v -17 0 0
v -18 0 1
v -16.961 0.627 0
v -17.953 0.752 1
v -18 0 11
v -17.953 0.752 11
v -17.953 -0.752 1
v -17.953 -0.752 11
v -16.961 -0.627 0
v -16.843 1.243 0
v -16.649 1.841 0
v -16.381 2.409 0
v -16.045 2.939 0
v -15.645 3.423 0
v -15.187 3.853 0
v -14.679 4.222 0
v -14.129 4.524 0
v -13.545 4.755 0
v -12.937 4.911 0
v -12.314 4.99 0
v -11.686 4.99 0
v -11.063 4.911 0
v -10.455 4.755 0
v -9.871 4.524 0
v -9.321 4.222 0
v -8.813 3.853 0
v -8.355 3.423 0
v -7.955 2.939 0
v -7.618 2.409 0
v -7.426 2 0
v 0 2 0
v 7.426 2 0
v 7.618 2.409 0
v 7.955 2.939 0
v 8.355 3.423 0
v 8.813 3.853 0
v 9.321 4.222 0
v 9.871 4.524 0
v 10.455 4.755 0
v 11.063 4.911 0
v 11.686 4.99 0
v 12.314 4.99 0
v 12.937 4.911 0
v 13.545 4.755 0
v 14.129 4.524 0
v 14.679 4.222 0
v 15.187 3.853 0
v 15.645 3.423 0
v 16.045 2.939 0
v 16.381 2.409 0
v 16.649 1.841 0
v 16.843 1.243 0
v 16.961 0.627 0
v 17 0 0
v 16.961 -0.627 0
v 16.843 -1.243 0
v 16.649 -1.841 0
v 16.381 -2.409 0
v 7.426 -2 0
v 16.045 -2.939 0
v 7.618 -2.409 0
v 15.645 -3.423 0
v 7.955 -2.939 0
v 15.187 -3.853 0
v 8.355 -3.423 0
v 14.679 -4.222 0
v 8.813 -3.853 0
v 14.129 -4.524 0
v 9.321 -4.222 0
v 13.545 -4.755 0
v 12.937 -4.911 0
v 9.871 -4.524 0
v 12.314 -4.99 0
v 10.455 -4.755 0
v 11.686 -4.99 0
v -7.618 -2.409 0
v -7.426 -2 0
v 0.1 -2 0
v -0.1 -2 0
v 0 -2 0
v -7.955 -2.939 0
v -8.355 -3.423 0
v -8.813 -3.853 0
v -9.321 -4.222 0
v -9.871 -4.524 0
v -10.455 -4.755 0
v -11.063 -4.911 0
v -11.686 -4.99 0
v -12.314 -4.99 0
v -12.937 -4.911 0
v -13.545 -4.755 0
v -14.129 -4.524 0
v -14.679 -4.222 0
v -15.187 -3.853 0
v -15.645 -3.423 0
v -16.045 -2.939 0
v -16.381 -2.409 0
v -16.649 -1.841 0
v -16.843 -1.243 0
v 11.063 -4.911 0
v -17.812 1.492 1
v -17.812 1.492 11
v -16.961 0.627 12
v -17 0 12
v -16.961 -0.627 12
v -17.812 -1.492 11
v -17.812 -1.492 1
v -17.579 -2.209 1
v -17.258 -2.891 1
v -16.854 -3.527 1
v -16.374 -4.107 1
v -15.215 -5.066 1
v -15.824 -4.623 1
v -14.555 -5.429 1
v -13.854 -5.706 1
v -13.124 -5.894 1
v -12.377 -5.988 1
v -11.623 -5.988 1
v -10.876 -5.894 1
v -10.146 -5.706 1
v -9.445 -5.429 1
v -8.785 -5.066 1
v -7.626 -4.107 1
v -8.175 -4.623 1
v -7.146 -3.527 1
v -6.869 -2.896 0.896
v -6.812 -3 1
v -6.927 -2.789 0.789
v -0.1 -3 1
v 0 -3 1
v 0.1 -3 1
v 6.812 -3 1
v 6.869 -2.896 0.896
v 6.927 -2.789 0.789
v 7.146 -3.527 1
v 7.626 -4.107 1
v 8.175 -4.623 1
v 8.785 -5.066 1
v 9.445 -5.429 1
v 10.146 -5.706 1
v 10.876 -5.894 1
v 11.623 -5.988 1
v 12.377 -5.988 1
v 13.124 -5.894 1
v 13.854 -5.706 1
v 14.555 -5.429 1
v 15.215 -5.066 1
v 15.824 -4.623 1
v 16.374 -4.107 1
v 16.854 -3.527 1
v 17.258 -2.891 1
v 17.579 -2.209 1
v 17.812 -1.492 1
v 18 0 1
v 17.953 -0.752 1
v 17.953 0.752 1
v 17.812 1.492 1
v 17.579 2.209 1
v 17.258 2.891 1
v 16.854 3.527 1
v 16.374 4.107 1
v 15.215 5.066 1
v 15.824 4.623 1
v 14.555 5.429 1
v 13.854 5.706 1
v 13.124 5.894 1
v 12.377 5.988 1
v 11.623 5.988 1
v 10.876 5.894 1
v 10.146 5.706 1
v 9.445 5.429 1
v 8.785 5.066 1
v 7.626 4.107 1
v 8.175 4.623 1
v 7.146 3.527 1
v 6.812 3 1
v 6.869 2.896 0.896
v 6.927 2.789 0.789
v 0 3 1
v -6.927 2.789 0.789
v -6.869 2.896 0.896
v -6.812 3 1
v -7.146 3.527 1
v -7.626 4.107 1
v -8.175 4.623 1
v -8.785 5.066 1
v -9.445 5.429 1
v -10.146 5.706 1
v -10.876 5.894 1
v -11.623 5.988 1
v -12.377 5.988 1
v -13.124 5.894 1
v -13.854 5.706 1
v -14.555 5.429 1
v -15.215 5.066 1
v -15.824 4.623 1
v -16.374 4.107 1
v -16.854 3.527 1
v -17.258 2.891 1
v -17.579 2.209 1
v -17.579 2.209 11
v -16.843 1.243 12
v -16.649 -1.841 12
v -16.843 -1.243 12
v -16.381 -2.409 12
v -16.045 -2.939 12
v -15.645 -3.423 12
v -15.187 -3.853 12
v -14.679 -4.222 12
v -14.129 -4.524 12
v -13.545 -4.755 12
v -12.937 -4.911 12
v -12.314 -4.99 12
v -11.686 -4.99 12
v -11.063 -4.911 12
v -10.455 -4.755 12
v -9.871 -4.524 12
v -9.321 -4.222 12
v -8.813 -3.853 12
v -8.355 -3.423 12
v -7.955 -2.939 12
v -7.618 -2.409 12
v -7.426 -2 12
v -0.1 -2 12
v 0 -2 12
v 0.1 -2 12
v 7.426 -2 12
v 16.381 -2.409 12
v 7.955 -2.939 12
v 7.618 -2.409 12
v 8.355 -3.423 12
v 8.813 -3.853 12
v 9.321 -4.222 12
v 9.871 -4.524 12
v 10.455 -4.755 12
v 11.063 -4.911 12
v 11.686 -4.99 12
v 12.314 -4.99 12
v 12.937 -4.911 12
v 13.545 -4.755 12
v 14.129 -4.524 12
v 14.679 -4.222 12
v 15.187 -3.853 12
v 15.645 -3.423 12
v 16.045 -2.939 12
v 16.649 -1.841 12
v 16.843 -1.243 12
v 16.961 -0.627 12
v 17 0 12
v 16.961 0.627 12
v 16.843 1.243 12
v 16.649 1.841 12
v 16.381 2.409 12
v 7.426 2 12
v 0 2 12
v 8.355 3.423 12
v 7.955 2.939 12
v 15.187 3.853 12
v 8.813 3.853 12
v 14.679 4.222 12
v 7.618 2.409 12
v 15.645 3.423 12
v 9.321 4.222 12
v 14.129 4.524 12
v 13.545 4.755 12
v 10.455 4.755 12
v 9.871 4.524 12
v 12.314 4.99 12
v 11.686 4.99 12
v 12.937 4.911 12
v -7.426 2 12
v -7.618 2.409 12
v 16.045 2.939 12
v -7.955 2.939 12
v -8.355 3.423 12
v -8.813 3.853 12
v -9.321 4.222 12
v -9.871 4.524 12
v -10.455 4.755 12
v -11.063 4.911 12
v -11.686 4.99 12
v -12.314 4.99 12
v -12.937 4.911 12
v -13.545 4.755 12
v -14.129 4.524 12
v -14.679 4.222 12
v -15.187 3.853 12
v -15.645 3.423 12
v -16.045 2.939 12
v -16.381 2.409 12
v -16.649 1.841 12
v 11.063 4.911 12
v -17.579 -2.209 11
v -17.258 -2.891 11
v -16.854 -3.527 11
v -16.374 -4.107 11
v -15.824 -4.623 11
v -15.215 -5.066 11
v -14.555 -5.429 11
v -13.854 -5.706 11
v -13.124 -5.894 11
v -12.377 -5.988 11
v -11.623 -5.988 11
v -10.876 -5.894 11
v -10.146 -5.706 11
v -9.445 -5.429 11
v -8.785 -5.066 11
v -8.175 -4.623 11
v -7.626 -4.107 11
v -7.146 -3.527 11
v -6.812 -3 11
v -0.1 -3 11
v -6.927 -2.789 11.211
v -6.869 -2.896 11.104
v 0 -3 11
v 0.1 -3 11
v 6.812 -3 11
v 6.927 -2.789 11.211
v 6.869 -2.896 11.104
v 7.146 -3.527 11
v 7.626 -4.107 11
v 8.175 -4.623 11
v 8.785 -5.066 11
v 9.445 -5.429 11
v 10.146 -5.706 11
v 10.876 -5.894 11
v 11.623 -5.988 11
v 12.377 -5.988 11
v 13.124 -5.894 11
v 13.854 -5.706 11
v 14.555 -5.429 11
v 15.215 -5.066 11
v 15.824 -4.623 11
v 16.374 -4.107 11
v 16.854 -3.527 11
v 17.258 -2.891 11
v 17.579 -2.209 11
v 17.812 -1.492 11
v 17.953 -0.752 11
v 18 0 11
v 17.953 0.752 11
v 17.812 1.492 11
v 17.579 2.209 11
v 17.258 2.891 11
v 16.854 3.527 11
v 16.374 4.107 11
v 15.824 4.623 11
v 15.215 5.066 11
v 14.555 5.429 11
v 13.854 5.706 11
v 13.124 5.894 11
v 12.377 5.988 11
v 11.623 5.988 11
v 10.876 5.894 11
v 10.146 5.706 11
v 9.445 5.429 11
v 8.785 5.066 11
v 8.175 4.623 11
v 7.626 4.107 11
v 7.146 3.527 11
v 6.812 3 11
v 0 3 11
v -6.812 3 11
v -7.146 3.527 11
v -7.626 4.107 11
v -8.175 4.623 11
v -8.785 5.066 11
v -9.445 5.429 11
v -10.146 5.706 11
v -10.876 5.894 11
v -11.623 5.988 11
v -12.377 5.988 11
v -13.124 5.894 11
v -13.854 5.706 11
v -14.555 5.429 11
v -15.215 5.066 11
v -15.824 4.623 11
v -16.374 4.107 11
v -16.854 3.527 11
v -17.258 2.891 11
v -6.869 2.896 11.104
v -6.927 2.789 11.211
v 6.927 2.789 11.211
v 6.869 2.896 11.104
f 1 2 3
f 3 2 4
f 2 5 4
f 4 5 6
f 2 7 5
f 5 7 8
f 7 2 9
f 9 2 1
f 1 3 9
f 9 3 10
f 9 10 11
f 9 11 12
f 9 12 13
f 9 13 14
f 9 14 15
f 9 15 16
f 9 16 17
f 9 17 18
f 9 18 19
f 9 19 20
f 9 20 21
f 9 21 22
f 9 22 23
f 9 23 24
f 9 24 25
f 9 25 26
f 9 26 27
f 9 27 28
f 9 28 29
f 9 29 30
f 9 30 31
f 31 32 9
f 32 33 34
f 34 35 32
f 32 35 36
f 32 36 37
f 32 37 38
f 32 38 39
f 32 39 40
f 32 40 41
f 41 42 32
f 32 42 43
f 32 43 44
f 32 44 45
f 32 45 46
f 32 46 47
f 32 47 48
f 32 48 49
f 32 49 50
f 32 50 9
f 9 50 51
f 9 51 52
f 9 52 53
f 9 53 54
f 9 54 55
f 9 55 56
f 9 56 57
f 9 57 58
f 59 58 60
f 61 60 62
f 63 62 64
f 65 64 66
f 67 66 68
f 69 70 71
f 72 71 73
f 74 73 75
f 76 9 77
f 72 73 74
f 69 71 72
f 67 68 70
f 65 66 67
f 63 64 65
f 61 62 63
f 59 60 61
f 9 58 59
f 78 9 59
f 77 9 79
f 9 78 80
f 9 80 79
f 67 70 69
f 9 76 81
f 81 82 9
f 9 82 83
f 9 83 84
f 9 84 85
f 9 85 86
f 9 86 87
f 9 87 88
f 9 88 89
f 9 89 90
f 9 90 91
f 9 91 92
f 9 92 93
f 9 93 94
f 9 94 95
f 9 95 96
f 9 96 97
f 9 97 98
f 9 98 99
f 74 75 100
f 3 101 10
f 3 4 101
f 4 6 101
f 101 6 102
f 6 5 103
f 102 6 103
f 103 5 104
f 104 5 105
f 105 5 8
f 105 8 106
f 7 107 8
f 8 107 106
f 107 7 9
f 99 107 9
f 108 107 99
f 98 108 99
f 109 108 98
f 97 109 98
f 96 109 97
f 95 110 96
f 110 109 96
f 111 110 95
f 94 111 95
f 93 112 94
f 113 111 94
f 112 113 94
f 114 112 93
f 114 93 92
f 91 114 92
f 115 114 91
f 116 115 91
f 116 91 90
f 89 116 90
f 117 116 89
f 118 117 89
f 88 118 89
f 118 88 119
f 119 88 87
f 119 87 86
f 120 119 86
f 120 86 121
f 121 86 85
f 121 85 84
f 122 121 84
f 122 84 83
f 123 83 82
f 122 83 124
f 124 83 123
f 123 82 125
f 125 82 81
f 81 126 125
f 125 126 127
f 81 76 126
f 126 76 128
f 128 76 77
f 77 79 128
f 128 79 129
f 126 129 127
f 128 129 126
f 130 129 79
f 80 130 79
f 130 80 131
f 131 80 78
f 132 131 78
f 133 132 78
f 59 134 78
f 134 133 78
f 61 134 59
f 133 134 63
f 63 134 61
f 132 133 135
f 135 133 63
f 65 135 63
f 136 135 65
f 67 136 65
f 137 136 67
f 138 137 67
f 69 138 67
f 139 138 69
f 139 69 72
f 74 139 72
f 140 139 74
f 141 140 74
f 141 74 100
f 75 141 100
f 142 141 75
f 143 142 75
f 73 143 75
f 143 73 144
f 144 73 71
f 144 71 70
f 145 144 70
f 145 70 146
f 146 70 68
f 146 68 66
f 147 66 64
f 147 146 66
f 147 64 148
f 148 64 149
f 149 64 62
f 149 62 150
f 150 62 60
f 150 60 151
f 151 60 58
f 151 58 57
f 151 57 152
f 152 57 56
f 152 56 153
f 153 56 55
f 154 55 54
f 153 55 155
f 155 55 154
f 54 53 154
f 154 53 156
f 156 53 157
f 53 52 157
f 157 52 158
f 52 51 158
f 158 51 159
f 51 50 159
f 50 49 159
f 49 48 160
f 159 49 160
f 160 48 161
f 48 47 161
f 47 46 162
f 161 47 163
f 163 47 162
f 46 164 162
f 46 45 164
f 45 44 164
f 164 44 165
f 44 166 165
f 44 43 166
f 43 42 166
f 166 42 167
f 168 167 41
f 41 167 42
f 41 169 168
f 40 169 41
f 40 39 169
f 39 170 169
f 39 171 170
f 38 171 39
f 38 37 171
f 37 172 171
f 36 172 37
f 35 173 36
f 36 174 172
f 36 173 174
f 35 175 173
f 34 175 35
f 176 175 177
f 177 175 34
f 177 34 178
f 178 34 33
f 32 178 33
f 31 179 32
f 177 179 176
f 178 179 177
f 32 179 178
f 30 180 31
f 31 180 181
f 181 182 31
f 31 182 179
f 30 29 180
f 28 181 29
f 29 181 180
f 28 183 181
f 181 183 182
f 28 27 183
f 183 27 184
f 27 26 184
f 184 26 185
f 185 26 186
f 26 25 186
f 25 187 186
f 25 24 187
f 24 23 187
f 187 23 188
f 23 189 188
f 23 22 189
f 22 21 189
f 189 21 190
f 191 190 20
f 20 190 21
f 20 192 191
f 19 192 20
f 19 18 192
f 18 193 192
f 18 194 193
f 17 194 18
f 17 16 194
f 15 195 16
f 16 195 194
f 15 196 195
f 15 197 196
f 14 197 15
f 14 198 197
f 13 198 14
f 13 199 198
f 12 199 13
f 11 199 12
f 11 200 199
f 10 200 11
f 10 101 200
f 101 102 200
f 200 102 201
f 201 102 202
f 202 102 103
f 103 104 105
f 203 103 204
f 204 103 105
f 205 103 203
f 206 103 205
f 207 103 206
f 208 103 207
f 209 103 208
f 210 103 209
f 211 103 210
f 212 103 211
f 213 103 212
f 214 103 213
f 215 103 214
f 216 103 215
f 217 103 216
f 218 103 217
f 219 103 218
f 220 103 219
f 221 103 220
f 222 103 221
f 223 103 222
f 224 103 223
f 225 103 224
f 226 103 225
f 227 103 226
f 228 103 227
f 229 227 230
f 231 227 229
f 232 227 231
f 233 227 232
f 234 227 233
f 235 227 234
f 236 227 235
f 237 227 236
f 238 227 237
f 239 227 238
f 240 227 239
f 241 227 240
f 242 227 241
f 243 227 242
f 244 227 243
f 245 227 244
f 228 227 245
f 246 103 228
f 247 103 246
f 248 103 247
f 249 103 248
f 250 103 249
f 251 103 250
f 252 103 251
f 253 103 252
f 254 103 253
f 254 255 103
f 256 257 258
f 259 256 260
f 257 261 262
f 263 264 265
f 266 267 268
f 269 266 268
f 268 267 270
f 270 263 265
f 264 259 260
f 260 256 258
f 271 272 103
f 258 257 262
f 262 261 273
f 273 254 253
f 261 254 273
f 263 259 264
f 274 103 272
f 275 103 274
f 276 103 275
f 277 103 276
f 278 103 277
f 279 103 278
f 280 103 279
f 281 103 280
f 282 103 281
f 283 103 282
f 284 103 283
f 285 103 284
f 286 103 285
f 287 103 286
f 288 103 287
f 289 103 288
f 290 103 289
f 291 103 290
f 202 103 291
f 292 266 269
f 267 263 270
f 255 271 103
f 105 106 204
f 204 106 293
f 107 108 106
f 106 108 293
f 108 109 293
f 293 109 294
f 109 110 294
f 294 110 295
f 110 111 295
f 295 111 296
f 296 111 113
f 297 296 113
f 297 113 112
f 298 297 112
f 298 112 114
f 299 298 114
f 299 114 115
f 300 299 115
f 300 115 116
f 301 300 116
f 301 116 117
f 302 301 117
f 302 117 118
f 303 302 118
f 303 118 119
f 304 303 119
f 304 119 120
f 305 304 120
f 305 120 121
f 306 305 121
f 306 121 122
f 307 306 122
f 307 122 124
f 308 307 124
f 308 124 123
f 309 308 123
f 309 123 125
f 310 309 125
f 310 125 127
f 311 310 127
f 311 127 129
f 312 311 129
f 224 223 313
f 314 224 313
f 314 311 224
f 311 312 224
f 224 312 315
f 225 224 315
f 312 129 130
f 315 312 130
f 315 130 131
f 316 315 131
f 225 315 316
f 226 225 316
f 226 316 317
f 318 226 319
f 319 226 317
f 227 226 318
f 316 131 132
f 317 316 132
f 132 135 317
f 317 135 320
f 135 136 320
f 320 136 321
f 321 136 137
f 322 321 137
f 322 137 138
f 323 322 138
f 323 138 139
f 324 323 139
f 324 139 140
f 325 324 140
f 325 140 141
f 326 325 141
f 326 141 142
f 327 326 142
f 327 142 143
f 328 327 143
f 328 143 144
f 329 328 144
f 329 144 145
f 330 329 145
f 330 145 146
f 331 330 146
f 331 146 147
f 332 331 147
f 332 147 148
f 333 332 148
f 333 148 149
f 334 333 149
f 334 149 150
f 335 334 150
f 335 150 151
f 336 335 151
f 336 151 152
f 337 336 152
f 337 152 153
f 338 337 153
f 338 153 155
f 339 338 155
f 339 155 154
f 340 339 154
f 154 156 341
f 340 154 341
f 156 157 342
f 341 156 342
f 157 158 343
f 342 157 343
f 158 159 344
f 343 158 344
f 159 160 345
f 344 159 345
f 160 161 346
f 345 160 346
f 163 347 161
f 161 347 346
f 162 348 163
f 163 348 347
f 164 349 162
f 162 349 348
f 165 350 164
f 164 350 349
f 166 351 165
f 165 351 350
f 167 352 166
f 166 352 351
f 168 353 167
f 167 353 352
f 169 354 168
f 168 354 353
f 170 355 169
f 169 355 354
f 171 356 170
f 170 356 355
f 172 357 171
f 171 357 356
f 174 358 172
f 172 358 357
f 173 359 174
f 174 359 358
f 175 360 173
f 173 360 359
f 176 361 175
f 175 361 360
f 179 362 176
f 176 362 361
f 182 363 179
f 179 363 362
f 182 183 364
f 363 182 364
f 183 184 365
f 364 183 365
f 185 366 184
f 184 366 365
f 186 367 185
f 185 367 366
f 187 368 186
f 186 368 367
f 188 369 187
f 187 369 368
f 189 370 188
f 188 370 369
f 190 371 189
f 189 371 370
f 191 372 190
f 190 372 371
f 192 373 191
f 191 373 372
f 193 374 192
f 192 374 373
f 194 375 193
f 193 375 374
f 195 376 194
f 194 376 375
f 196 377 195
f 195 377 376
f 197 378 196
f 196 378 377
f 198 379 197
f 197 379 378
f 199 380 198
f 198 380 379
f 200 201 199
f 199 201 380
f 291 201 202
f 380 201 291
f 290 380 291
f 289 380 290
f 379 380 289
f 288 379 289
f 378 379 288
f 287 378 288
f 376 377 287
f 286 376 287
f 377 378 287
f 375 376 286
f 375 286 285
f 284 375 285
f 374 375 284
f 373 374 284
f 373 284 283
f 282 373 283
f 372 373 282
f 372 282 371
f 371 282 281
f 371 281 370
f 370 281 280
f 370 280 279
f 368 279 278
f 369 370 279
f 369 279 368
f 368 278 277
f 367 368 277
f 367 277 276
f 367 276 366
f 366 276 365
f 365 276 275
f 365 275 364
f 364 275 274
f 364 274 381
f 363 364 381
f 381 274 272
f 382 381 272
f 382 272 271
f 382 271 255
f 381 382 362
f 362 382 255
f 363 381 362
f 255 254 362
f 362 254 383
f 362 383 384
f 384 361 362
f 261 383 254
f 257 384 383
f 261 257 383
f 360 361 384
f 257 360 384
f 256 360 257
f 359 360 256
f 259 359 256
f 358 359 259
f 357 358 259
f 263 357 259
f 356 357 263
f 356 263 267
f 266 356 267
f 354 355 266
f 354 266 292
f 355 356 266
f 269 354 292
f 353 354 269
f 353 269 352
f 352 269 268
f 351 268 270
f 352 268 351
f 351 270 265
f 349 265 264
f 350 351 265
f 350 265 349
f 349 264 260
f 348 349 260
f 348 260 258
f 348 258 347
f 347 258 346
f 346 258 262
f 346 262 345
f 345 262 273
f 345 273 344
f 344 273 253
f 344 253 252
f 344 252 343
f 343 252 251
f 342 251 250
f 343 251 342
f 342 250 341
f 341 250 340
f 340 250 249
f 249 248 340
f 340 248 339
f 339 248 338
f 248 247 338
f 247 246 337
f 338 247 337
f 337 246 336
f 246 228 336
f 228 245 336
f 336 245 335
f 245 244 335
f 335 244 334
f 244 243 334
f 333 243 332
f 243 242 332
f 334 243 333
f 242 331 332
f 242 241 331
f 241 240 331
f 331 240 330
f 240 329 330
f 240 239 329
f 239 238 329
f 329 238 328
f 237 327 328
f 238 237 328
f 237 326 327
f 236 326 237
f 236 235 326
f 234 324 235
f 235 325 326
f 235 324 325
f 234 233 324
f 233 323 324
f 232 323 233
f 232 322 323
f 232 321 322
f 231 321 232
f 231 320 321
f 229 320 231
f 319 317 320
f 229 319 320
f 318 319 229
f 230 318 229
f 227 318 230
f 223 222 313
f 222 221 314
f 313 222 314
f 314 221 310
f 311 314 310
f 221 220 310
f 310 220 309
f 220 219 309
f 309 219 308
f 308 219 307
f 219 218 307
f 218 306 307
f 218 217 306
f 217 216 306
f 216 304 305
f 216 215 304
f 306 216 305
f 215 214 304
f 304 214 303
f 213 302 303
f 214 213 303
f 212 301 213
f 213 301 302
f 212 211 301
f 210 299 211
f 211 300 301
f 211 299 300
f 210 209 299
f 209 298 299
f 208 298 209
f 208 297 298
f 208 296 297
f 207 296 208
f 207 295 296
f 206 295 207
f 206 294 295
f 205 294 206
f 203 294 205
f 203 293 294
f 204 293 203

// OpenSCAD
// file: dotscad/pie.scad
/**
 * pie.scad
 *
 * Use this module to generate a pie- or pizza- slice shape, which is particularly useful
 * in combination with `difference()` and `intersection()` to render shapes that extend a
 * certain number of degrees around or within a circle.
 *
 * This openSCAD library is part of the [dotscad](https://github.com/dotscad/dotscad)
 * project.
 *
 * @copyright  Chris Petersen, 2013
 * @license    http://creativecommons.org/licenses/LGPL/2.1/
 * @license    http://creativecommons.org/licenses/by-sa/3.0/
 *
 * @see        http://www.thingiverse.com/thing:109467
 * @source     https://github.com/dotscad/dotscad/blob/master/pie.scad
 *
 * @param float radius Radius of the pie
 * @param float angle  Angle (size) of the pie to slice
 * @param float height Height (thickness) of the pie
 * @param float spin   Angle to spin the slice on the Z axis
 */
module pie(radius, angle, height, spin=0) {
    // Negative angles shift direction of rotation
    clockwise = (angle < 0) ? true : false;
    // Support angles < 0 and > 360
    normalized_angle = abs((angle % 360 != 0) ? angle % 360 : angle % 360 + 360);
    // Select rotation direction
    rotation = clockwise ? [0, 180 - normalized_angle] : [180, normalized_angle];
    // Render
    if (angle != 0) {
        rotate([0,0,spin]) linear_extrude(height=height)
            difference() {
                circle(radius);
                if (normalized_angle < 180) {
                    union() for(a = rotation)
                        rotate(a) translate([-radius, 0, 0]) square(radius * 2);
                }
                else if (normalized_angle != 360) {
                    intersection_for(a = rotation)
                        rotate(a) translate([-radius, 0, 0]) square(radius * 2);
                }
            }
    }
}

/*
 * When this file is opened directly in OpenSCAD, the following code will render an
 * example of the functions it provides.  This example will *not* render if this module
 * is imported into your own project via the `use` statement.
 */
pie_example();
module pie_example($fn=50) {
    union() {
        pie(40, 45, 5);
        rotate([0,0,-5]) difference() {
            sphere(r=25);
            translate([0,0,-30]) pie(50, -45, 60, 15);
        }
    }
}
// file: ../dotscad/pie.scad
/**
 * pie.scad
 *
 * Use this module to generate a pie- or pizza- slice shape, which is particularly useful
 * in combination with `difference()` and `intersection()` to render shapes that extend a
 * certain number of degrees around or within a circle.
 *
 * This openSCAD library is part of the [dotscad](https://github.com/dotscad/dotscad)
 * project.
 *
 * @copyright  Chris Petersen, 2013
 * @license    http://creativecommons.org/licenses/LGPL/2.1/
 * @license    http://creativecommons.org/licenses/by-sa/3.0/
 *
 * @see        http://www.thingiverse.com/thing:109467
 * @source     https://github.com/dotscad/dotscad/blob/master/pie.scad
 *
 * @param float radius Radius of the pie
 * @param float angle  Angle (size) of the pie to slice
 * @param float height Height (thickness) of the pie
 * @param float spin   Angle to spin the slice on the Z axis
 */
module pie(radius, angle, height, spin=0) {
    // Negative angles shift direction of rotation
    clockwise = (angle < 0) ? true : false;
    // Support angles < 0 and > 360
    normalized_angle = abs((angle % 360 != 0) ? angle % 360 : angle % 360 + 360);
    // Select rotation direction
    rotation = clockwise ? [0, 180 - normalized_angle] : [180, normalized_angle];
    // Render
    if (angle != 0) {
        rotate([0,0,spin]) linear_extrude(height=height)
            difference() {
                circle(radius);
                if (normalized_angle < 180) {
                    union() for(a = rotation)
                        rotate(a) translate([-radius, 0, 0]) square(radius * 2);
                }
                else if (normalized_angle != 360) {
                    intersection_for(a = rotation)
                        rotate(a) translate([-radius, 0, 0]) square(radius * 2);
                }
            }
    }
}

/*
 * When this file is opened directly in OpenSCAD, the following code will render an
 * example of the functions it provides.  This example will *not* render if this module
 * is imported into your own project via the `use` statement.
 */
pie_example();
module pie_example($fn=50) {
    union() {
        pie(40, 45, 5);
        rotate([0,0,-5]) difference() {
            sphere(r=25);
            translate([0,0,-30]) pie(50, -45, 60, 15);
        }
    }
}
// main file
/**
 * Dog-bone (male-male) connector for Thomas- and Brio-compatible wooden train track.
 *
 * To render this shape, you will need
 * [tracklib.scad](http://www.thingiverse.com/thing:216915) installed in the same
 * directory as this file, or the [dotscad/trains](https://github.com/dotscad/trains)
 * repository cloned in its entirety (which will include this file and tracklib.scad).
 *
 * This OpenSCAD library is part of the [dotscad](https://github.com/dotscad/dotscad)
 * project, an open collection of modules and Things for 3d printing.  Please check there
 * for the latest versions of this and other related files.
 *
 * @copyright  Chris Petersen, 2014
 * @license    http://creativecommons.org/licenses/LGPL/2.1/
 * @license    http://creativecommons.org/licenses/by-sa/3.0/
 *
 * @see        http://www.thingiverse.com/thing:97263
 * @source     https://github.com/dotscad/trains/blob/master/track-wooden/dog-bone.scad
 */

/* ******************************************************************************
 * Thingiverse Customizer parameters and rendering.
 * Unfortunately, Customizer doesn't support multiple .scad files so this won't work.
 * ****************************************************************************** */

/* [Global] */

// Nudge the length shorter, if necessary
length_nudge = 0; // [0:5]

/* [Hidden] */

// Don't need that many facets for a small part
$fn=50;

// Render the part
dogbone();

/* ******************************************************************************
 * Main module code below:
 * ****************************************************************************** */

// Not sure where tracklib might be, so try to load it from a couple of locations.
use <../tracklib.scad>; // github clone
use <tracklib.scad>;    // likely downloaded from thingiverse

module dogbone() {
    union() {
        wood_plug();
        translate([length_nudge,0,0]) rotate([0,0,180]) wood_plug();
    }
}
